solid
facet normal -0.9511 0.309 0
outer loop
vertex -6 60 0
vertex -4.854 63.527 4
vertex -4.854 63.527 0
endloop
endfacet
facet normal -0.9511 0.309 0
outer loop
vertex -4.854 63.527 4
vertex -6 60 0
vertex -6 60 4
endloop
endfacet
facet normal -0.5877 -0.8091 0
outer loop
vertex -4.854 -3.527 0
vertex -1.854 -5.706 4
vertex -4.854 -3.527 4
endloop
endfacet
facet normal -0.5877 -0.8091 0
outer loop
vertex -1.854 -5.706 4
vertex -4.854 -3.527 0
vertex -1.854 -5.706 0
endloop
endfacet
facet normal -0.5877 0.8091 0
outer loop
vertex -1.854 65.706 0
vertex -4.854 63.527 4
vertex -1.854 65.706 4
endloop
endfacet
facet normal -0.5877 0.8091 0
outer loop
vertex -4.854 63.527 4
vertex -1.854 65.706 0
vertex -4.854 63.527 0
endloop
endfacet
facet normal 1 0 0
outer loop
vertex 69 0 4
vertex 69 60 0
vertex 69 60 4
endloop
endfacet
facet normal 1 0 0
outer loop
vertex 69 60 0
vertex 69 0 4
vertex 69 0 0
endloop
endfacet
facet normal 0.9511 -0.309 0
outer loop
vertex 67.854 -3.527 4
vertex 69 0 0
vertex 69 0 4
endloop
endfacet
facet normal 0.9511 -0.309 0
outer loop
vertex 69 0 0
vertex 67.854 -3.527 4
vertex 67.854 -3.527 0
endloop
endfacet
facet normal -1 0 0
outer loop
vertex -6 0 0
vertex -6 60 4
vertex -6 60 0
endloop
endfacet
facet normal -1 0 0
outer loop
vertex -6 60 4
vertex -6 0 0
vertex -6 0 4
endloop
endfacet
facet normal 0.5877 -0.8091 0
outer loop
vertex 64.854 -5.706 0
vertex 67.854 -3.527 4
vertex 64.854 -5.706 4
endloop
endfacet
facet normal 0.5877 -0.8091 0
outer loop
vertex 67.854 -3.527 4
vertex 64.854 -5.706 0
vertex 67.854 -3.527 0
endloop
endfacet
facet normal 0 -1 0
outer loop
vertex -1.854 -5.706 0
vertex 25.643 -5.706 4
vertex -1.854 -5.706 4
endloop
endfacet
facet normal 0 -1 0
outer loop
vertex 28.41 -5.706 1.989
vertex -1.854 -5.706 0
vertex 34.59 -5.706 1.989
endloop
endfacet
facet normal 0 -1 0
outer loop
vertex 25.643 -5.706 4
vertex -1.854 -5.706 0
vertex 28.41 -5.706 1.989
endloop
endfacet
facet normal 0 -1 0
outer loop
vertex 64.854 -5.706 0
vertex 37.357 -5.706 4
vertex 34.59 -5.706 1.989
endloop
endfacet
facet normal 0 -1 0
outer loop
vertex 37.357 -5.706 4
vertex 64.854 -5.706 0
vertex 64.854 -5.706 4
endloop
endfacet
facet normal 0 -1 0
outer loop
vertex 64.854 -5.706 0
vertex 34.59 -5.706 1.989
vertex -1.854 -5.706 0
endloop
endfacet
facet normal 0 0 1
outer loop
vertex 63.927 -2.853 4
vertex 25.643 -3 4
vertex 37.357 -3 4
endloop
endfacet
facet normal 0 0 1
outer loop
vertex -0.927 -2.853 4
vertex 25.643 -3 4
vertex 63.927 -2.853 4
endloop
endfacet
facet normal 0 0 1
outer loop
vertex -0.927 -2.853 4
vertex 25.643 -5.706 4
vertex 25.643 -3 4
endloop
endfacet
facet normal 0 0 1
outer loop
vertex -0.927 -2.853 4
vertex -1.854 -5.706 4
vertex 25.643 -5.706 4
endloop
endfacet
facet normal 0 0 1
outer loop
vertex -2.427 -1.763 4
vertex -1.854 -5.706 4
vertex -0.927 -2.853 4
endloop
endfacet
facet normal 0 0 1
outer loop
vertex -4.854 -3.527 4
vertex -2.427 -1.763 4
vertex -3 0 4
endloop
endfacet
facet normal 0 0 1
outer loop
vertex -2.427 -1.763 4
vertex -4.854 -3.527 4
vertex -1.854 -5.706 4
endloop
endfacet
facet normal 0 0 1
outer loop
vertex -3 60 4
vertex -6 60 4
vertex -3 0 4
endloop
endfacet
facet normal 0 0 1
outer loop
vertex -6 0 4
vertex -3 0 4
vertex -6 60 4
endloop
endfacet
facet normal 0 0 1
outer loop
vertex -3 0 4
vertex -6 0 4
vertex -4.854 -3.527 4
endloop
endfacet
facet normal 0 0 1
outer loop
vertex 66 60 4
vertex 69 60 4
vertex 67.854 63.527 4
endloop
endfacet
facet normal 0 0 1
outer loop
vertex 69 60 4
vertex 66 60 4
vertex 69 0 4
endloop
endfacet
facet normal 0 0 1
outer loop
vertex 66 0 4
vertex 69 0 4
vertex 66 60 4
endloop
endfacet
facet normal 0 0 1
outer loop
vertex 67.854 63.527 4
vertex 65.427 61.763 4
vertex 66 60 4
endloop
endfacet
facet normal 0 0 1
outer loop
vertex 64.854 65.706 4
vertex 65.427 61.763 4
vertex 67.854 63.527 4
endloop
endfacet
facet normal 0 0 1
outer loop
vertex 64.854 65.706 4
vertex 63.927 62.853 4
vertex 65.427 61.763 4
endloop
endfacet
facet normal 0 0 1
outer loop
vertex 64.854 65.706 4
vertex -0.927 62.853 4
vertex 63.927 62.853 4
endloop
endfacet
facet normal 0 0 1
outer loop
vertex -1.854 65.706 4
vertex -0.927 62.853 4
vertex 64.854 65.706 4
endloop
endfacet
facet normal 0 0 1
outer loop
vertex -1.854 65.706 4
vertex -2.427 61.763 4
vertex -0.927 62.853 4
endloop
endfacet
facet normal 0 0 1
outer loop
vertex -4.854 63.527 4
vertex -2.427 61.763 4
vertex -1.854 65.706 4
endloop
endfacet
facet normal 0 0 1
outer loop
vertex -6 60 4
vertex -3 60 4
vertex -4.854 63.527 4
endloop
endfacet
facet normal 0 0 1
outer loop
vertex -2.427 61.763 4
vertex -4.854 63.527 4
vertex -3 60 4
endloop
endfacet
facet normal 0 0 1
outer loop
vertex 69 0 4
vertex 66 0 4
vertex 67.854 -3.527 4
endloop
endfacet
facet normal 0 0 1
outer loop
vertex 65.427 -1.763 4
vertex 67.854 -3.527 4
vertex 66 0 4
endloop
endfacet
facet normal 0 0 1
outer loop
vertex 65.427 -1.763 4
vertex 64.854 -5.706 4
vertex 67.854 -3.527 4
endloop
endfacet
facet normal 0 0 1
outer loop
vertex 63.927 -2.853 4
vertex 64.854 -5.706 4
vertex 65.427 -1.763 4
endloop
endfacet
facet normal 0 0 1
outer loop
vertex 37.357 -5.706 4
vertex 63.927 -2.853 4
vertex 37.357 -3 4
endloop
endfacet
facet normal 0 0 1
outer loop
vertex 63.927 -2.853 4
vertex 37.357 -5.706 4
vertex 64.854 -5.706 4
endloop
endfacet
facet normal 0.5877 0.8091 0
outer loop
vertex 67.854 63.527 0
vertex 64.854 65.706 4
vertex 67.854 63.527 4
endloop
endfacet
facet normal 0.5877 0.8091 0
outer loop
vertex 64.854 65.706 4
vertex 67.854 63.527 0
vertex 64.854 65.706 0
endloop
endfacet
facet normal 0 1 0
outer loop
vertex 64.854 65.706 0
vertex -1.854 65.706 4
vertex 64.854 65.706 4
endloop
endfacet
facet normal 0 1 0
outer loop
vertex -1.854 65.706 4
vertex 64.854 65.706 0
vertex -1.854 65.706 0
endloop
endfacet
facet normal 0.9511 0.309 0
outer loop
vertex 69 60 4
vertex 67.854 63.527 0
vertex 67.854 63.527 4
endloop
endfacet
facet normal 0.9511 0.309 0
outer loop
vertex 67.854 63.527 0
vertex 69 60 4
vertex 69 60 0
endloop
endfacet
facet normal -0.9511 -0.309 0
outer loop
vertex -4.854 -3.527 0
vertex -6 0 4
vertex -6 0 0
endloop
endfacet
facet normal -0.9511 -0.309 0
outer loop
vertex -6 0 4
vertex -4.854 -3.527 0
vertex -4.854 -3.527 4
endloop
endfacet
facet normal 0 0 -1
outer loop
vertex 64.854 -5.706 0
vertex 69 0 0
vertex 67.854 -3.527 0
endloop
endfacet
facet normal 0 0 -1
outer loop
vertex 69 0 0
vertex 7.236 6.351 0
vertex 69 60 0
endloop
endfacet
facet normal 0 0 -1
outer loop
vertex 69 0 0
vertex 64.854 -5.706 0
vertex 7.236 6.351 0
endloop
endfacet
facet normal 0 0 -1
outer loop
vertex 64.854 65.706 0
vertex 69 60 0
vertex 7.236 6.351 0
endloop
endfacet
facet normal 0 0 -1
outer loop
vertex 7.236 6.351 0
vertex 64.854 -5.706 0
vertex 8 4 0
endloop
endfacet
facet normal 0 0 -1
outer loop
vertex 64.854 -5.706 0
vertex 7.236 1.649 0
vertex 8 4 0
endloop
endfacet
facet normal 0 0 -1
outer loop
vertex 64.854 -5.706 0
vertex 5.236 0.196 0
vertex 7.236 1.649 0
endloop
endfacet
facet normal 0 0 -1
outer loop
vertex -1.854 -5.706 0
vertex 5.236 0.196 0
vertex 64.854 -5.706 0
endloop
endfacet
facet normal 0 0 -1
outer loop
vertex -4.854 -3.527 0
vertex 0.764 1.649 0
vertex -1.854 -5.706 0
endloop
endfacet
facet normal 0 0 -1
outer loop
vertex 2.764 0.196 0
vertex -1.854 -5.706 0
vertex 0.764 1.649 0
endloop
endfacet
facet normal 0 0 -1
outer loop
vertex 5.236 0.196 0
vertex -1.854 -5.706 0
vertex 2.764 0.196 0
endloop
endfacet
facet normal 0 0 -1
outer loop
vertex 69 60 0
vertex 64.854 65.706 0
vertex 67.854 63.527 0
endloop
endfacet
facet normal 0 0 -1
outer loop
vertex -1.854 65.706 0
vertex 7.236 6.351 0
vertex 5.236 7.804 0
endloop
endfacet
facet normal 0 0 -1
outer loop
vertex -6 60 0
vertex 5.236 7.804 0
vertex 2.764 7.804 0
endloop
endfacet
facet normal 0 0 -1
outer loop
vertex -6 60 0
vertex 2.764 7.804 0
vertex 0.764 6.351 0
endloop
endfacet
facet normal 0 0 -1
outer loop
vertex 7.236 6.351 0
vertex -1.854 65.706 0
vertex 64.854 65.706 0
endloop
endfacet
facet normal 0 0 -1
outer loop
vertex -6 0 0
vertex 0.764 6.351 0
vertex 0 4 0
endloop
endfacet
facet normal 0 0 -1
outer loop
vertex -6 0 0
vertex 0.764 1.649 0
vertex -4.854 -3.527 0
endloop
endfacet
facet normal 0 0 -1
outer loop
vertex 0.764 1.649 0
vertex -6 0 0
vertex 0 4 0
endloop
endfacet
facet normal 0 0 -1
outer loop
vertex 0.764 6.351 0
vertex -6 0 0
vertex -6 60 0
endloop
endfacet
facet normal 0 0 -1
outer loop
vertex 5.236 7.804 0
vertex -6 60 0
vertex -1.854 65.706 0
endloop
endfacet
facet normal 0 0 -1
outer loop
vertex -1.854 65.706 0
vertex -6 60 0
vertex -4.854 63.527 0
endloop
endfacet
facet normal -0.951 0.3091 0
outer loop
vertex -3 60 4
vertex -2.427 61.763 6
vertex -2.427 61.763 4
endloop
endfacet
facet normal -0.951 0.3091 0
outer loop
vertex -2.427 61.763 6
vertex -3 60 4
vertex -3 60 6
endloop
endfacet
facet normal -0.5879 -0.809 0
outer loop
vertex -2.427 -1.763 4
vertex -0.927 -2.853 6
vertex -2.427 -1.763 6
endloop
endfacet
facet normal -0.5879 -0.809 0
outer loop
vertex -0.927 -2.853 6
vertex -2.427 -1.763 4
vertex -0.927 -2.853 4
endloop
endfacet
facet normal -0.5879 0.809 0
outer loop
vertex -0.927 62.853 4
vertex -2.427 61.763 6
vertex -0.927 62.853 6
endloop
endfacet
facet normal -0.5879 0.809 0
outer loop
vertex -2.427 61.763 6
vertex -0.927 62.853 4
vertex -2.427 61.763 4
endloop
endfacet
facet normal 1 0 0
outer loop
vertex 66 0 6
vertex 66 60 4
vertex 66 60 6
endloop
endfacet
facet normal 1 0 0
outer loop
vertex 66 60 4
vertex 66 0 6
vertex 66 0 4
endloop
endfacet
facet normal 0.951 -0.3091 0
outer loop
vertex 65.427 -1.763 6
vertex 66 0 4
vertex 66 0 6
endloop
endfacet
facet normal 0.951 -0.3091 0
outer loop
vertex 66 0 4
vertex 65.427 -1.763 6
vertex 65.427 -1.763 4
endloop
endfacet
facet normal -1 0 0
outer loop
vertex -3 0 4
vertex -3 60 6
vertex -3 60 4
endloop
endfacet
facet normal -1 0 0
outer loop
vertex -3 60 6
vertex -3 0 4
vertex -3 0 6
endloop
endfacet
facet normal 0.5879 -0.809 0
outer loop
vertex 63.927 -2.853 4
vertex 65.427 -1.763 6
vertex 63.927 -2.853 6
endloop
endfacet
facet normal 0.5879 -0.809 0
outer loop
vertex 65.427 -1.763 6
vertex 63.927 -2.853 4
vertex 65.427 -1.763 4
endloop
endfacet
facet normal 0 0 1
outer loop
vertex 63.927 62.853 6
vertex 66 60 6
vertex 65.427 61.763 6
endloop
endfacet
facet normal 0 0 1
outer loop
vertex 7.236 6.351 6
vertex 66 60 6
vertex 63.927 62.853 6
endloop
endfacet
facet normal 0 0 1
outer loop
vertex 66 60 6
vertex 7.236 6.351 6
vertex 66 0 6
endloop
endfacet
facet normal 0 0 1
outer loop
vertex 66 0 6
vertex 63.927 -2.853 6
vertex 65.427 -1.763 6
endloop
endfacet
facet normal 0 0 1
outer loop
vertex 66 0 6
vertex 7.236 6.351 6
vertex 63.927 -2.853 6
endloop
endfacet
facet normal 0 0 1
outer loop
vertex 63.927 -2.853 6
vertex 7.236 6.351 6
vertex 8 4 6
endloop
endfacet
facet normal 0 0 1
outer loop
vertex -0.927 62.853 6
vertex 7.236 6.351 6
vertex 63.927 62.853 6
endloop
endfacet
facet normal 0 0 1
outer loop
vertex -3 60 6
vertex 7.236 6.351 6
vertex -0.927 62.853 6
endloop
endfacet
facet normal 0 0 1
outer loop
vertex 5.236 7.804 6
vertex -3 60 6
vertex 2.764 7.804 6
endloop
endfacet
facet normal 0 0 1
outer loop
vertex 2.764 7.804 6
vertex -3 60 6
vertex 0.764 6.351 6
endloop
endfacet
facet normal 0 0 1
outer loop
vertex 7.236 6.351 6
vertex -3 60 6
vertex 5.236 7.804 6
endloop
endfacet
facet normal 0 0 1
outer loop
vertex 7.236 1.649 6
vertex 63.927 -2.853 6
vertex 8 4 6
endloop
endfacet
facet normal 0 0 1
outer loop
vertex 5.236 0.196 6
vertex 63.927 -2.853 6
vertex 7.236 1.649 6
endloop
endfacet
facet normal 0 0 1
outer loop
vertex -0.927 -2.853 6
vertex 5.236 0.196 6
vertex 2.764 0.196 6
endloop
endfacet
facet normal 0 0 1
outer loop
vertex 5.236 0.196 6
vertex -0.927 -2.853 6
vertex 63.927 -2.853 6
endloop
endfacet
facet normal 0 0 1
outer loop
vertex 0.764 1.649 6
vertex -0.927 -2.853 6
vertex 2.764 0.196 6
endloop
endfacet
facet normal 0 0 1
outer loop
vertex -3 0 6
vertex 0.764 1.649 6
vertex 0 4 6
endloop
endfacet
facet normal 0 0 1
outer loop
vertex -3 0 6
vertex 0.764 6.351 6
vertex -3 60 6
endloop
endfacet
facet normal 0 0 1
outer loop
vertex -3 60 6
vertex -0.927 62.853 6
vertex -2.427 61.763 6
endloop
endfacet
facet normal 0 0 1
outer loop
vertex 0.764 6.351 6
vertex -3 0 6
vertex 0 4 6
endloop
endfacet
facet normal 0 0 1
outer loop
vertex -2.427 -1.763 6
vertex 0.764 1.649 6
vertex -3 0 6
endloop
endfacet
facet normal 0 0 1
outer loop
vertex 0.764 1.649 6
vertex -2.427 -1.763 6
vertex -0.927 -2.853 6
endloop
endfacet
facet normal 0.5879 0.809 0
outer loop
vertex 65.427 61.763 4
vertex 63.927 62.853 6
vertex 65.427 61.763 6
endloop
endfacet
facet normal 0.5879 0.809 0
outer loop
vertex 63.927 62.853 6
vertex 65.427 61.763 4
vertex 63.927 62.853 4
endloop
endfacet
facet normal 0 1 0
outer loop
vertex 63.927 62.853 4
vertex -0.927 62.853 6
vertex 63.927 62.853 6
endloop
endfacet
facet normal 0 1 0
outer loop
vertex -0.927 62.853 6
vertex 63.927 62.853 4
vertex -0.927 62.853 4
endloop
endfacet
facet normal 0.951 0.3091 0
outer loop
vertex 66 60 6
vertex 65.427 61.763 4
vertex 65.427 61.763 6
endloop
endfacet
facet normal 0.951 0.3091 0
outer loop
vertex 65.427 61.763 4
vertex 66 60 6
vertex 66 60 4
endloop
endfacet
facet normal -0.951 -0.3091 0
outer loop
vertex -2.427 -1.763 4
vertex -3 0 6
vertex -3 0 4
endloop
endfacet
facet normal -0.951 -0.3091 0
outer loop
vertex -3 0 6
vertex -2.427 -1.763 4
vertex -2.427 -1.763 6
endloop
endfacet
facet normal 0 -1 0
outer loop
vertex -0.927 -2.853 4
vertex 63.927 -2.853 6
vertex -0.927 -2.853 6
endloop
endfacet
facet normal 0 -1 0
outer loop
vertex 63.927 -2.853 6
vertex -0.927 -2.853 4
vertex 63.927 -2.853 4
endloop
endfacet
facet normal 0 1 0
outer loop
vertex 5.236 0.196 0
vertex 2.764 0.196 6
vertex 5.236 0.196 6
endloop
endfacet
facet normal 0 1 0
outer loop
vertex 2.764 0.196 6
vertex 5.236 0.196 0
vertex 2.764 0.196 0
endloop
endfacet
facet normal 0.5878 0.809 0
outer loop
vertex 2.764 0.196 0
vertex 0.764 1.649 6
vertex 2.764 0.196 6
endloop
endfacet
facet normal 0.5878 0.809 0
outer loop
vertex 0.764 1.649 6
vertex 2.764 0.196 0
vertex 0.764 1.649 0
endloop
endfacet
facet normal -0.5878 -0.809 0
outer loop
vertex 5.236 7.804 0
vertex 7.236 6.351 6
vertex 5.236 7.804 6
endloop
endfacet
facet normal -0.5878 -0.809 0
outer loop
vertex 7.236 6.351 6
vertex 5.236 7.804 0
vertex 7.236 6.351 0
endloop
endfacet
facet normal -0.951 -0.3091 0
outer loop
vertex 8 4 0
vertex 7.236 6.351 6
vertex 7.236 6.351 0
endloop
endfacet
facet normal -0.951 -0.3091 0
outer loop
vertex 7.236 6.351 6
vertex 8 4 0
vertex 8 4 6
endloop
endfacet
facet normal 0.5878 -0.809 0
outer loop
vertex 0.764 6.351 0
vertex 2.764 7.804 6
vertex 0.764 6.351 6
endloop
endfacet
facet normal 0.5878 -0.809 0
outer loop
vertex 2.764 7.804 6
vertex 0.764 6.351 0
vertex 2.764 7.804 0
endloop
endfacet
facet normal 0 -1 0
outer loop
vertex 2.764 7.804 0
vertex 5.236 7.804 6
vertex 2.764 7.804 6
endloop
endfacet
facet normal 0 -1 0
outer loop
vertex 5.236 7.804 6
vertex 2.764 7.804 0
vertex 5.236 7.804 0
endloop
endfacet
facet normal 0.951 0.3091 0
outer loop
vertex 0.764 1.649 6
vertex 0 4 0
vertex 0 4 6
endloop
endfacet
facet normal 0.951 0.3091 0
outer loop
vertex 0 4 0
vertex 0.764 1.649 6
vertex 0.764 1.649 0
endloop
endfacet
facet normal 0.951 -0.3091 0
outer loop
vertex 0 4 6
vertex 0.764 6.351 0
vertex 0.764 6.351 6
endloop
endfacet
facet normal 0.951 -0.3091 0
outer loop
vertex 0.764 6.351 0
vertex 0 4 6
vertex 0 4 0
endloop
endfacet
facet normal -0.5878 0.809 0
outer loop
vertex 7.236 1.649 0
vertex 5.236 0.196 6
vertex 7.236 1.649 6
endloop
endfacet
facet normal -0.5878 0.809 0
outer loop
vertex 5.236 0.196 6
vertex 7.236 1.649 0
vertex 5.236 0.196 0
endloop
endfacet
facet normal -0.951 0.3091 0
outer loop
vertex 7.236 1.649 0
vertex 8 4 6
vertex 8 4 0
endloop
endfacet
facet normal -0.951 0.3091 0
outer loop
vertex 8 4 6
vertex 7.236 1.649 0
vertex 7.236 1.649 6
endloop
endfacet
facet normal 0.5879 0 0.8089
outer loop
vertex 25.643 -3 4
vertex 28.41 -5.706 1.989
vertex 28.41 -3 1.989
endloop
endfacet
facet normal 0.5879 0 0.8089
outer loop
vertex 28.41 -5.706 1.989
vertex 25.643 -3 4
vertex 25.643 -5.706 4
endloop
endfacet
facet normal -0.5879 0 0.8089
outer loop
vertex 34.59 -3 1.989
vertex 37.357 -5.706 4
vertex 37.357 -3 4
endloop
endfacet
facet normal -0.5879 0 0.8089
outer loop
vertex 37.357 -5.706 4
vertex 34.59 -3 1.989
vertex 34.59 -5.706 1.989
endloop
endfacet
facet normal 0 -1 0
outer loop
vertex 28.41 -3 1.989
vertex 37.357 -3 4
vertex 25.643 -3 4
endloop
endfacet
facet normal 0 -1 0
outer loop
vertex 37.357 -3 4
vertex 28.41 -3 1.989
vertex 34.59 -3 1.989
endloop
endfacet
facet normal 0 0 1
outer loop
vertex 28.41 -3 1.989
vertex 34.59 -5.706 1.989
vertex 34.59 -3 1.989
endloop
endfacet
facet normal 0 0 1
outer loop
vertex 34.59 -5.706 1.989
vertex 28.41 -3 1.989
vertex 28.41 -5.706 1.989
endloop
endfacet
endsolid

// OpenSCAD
$fn=10;

pin_widths=63;
pin_depth=60;
base_thickness = 4;
pin_d = 3;
case_height = 40;
power_opening = 8;

module lid() {
    module top() {
        linear_extrude(height=base_thickness) 
        minkowski() {
            square([pin_widths, pin_depth]);
            circle(6);
        }
        linear_extrude(height=(base_thickness + 2)) 
        minkowski() {
            square([pin_widths, pin_depth]);
            circle(3);
        }
    }

    difference() {
        top();
        translate([4,4,-1]) cylinder(h=10,d=8);
        translate([pin_widths/2,-3,11.5]) rotate([90,0,0]) cylinder(h=10,d=20);
    }
}

lid();

echo(version=version());
